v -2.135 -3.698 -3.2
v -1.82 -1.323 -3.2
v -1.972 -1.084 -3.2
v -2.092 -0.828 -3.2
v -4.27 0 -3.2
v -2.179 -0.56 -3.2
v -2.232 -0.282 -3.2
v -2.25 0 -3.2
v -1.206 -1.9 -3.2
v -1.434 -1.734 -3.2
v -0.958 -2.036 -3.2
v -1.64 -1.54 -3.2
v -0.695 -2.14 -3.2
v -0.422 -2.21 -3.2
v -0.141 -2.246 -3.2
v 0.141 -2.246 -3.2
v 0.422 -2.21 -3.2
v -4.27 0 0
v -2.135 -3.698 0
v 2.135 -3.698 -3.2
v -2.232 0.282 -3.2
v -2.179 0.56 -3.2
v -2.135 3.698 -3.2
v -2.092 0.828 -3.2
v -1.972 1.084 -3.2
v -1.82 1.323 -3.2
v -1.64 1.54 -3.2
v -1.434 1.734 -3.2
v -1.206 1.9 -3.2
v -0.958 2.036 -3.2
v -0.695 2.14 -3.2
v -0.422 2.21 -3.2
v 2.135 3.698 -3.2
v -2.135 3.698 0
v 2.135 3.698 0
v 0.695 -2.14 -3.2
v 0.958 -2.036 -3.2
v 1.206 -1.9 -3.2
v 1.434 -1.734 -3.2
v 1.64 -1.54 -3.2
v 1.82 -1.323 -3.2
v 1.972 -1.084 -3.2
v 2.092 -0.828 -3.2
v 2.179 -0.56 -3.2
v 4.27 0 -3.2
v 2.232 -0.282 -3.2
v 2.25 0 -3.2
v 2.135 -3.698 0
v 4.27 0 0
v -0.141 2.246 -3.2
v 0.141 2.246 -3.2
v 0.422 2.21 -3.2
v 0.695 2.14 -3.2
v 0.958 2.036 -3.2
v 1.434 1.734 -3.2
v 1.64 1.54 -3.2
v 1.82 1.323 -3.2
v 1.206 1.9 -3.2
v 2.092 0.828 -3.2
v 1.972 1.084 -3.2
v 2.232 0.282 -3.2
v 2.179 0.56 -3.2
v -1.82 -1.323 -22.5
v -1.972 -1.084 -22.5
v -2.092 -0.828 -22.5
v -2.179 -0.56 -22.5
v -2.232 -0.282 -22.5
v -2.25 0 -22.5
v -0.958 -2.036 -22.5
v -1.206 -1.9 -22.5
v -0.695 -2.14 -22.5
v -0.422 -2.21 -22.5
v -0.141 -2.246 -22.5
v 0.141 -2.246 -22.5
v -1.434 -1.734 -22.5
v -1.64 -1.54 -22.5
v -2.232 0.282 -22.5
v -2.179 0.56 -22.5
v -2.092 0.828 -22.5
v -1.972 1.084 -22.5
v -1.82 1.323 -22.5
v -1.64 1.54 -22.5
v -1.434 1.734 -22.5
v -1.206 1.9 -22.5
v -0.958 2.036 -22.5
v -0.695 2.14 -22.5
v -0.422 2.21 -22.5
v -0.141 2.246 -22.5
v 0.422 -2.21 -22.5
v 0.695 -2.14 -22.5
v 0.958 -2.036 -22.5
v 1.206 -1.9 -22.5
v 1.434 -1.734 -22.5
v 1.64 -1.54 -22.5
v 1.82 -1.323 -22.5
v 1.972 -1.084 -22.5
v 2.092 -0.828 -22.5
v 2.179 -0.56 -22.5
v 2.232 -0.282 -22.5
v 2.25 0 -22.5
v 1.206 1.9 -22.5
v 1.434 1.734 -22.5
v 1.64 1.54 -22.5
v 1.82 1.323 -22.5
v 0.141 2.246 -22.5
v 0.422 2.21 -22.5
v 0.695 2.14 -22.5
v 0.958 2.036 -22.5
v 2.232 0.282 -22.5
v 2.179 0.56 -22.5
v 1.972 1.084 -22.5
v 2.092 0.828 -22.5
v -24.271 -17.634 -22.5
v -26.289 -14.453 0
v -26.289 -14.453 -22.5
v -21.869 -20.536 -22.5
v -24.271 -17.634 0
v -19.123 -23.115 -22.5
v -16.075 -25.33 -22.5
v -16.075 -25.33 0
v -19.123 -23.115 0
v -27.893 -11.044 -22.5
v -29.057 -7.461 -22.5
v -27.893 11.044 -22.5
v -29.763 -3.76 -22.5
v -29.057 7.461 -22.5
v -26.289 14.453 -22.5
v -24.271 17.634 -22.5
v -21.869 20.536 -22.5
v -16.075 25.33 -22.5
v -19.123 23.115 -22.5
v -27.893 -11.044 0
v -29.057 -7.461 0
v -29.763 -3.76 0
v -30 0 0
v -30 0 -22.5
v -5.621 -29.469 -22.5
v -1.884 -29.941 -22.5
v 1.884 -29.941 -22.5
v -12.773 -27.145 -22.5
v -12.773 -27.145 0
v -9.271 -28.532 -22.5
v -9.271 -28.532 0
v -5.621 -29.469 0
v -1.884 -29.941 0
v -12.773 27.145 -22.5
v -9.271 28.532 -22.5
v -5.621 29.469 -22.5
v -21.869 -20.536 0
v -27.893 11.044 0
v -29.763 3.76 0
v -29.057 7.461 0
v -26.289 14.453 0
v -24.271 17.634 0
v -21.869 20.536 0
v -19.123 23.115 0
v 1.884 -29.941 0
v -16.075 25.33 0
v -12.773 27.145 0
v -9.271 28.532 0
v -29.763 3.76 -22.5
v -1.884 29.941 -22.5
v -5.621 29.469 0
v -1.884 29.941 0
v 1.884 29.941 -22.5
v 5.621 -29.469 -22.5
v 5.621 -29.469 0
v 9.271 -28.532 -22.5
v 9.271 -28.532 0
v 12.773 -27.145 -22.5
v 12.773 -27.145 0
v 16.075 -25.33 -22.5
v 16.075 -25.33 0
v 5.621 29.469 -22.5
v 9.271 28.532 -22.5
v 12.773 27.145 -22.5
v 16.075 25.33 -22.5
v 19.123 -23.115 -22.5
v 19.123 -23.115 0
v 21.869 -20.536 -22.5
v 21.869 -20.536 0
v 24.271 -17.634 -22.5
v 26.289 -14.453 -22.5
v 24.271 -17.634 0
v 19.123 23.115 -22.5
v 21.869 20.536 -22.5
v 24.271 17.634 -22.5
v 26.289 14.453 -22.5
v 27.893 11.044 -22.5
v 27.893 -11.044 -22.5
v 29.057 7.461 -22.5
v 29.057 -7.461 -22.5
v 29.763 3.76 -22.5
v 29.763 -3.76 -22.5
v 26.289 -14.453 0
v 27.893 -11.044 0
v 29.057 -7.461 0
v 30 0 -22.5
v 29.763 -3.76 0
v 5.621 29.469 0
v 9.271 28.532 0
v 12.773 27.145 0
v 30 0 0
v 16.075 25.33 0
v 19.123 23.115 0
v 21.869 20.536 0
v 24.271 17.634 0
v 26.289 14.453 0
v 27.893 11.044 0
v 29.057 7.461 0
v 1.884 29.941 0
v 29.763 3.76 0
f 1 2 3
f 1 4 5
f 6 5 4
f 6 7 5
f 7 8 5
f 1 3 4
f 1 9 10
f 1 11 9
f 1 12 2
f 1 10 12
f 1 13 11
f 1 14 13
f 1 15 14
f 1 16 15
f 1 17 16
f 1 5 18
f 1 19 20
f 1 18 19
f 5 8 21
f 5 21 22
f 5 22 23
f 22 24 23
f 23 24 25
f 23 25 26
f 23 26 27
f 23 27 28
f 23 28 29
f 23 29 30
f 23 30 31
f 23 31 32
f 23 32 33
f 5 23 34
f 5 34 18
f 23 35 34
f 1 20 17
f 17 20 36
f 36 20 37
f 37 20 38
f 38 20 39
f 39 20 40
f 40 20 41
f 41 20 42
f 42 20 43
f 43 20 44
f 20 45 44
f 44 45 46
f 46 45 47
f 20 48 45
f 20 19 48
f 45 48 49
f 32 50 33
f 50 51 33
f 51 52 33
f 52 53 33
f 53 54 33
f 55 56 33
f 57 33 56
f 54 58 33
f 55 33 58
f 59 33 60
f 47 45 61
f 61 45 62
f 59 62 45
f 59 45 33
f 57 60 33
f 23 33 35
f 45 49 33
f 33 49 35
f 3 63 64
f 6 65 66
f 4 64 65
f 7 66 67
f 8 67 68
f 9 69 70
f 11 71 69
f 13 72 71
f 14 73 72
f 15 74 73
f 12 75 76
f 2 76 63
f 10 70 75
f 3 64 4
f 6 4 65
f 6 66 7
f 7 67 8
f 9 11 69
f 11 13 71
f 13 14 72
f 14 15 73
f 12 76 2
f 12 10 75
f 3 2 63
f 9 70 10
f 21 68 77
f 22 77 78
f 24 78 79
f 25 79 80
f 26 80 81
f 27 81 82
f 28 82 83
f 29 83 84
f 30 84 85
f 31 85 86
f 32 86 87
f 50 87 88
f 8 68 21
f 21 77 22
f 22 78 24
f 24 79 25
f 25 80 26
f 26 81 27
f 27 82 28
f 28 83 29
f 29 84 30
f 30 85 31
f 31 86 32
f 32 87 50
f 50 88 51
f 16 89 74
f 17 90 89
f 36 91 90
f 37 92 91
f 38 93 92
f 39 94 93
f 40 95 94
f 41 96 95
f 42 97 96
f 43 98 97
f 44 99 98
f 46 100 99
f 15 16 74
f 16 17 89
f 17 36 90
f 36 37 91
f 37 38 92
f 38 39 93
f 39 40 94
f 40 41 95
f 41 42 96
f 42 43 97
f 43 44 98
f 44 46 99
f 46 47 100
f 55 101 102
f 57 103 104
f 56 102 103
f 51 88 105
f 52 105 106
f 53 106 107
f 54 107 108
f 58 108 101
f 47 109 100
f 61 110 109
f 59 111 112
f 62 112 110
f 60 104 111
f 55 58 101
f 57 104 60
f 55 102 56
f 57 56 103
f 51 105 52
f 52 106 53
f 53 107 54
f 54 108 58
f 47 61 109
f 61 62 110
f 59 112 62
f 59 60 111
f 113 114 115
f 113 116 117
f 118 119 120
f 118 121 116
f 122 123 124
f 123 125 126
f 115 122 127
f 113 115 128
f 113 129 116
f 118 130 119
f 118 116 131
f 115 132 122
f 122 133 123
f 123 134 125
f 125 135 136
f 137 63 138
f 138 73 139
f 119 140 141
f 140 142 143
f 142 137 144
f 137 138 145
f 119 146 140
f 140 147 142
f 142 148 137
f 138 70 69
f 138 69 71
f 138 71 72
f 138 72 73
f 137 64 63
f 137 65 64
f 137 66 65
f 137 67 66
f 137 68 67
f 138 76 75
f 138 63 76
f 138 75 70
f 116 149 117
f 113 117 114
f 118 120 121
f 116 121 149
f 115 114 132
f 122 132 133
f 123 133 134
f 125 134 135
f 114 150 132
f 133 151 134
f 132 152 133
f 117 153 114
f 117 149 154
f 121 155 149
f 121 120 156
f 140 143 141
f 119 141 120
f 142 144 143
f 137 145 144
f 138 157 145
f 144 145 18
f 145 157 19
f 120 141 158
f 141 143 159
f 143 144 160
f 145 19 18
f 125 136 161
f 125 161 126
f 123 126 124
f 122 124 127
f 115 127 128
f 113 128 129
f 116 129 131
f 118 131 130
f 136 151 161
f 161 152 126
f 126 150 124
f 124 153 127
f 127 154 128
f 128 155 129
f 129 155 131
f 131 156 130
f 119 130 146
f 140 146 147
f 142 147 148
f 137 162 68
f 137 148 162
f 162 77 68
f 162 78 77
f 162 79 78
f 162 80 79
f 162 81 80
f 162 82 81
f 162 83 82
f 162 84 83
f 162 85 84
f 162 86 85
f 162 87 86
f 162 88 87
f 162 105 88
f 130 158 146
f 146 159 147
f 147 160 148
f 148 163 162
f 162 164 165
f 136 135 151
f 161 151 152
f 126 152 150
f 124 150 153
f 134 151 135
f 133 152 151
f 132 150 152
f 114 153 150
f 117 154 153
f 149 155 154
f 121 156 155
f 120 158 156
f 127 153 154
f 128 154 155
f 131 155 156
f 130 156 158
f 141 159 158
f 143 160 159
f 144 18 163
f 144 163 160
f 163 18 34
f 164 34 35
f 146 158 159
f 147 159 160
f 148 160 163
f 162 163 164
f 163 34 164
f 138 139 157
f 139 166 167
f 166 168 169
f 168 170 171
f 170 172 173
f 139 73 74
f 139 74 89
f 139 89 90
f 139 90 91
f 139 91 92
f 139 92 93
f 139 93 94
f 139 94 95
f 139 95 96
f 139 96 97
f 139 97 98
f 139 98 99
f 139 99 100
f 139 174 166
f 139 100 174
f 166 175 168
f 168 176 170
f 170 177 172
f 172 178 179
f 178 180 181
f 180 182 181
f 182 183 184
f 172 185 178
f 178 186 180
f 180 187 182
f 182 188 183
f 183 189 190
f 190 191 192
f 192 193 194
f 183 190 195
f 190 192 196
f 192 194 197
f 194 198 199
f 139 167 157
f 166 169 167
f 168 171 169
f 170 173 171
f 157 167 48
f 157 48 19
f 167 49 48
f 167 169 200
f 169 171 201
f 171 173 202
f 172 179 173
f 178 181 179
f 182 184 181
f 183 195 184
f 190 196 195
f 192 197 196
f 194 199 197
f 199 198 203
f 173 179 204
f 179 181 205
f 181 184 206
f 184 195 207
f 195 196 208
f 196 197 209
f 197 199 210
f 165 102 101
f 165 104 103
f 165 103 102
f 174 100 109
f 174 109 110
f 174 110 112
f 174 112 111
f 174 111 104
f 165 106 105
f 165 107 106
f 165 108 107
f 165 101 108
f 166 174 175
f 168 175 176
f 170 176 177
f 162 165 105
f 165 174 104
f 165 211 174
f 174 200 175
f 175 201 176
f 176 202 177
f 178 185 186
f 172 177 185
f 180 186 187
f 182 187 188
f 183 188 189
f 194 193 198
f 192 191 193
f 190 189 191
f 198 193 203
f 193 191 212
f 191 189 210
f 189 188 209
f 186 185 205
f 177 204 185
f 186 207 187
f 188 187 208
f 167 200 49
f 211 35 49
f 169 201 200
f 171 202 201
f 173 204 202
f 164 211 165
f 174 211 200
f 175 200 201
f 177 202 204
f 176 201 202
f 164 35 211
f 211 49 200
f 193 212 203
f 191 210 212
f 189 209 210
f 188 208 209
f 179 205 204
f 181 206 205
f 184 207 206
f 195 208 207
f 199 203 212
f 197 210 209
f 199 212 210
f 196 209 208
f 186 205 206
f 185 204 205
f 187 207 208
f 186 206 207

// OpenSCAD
$fn = 50;

difference() {
	union() {
		translate(v = [0, 0, -22.5]) {
			cylinder(h = 22.5, r = 30.0);
		}
	}
	union() {
		translate(v = [0, 0, 0]) {
			rotate(a = [0, 0, 0]) {
				difference() {
					union() {
						translate(v = [0, 0, -3.2]) {
							linear_extrude(height = 3.2) {
								polygon(points = [[4.2698, 0.0], [2.1349000000000005, 3.697755269078796], [-2.134899999999999, 3.6977552690787965], [-4.2698, 5.228996902999369e-16], [-2.134900000000002, -3.6977552690787956], [2.1348999999999974, -3.697755269078798]]);
							}
						}
					}
					union();
				}
			}
		}
		#translate(v = [0, 0, -100.0]) {
			cylinder(h = 200, r = 2.25);
		}
	}
}
